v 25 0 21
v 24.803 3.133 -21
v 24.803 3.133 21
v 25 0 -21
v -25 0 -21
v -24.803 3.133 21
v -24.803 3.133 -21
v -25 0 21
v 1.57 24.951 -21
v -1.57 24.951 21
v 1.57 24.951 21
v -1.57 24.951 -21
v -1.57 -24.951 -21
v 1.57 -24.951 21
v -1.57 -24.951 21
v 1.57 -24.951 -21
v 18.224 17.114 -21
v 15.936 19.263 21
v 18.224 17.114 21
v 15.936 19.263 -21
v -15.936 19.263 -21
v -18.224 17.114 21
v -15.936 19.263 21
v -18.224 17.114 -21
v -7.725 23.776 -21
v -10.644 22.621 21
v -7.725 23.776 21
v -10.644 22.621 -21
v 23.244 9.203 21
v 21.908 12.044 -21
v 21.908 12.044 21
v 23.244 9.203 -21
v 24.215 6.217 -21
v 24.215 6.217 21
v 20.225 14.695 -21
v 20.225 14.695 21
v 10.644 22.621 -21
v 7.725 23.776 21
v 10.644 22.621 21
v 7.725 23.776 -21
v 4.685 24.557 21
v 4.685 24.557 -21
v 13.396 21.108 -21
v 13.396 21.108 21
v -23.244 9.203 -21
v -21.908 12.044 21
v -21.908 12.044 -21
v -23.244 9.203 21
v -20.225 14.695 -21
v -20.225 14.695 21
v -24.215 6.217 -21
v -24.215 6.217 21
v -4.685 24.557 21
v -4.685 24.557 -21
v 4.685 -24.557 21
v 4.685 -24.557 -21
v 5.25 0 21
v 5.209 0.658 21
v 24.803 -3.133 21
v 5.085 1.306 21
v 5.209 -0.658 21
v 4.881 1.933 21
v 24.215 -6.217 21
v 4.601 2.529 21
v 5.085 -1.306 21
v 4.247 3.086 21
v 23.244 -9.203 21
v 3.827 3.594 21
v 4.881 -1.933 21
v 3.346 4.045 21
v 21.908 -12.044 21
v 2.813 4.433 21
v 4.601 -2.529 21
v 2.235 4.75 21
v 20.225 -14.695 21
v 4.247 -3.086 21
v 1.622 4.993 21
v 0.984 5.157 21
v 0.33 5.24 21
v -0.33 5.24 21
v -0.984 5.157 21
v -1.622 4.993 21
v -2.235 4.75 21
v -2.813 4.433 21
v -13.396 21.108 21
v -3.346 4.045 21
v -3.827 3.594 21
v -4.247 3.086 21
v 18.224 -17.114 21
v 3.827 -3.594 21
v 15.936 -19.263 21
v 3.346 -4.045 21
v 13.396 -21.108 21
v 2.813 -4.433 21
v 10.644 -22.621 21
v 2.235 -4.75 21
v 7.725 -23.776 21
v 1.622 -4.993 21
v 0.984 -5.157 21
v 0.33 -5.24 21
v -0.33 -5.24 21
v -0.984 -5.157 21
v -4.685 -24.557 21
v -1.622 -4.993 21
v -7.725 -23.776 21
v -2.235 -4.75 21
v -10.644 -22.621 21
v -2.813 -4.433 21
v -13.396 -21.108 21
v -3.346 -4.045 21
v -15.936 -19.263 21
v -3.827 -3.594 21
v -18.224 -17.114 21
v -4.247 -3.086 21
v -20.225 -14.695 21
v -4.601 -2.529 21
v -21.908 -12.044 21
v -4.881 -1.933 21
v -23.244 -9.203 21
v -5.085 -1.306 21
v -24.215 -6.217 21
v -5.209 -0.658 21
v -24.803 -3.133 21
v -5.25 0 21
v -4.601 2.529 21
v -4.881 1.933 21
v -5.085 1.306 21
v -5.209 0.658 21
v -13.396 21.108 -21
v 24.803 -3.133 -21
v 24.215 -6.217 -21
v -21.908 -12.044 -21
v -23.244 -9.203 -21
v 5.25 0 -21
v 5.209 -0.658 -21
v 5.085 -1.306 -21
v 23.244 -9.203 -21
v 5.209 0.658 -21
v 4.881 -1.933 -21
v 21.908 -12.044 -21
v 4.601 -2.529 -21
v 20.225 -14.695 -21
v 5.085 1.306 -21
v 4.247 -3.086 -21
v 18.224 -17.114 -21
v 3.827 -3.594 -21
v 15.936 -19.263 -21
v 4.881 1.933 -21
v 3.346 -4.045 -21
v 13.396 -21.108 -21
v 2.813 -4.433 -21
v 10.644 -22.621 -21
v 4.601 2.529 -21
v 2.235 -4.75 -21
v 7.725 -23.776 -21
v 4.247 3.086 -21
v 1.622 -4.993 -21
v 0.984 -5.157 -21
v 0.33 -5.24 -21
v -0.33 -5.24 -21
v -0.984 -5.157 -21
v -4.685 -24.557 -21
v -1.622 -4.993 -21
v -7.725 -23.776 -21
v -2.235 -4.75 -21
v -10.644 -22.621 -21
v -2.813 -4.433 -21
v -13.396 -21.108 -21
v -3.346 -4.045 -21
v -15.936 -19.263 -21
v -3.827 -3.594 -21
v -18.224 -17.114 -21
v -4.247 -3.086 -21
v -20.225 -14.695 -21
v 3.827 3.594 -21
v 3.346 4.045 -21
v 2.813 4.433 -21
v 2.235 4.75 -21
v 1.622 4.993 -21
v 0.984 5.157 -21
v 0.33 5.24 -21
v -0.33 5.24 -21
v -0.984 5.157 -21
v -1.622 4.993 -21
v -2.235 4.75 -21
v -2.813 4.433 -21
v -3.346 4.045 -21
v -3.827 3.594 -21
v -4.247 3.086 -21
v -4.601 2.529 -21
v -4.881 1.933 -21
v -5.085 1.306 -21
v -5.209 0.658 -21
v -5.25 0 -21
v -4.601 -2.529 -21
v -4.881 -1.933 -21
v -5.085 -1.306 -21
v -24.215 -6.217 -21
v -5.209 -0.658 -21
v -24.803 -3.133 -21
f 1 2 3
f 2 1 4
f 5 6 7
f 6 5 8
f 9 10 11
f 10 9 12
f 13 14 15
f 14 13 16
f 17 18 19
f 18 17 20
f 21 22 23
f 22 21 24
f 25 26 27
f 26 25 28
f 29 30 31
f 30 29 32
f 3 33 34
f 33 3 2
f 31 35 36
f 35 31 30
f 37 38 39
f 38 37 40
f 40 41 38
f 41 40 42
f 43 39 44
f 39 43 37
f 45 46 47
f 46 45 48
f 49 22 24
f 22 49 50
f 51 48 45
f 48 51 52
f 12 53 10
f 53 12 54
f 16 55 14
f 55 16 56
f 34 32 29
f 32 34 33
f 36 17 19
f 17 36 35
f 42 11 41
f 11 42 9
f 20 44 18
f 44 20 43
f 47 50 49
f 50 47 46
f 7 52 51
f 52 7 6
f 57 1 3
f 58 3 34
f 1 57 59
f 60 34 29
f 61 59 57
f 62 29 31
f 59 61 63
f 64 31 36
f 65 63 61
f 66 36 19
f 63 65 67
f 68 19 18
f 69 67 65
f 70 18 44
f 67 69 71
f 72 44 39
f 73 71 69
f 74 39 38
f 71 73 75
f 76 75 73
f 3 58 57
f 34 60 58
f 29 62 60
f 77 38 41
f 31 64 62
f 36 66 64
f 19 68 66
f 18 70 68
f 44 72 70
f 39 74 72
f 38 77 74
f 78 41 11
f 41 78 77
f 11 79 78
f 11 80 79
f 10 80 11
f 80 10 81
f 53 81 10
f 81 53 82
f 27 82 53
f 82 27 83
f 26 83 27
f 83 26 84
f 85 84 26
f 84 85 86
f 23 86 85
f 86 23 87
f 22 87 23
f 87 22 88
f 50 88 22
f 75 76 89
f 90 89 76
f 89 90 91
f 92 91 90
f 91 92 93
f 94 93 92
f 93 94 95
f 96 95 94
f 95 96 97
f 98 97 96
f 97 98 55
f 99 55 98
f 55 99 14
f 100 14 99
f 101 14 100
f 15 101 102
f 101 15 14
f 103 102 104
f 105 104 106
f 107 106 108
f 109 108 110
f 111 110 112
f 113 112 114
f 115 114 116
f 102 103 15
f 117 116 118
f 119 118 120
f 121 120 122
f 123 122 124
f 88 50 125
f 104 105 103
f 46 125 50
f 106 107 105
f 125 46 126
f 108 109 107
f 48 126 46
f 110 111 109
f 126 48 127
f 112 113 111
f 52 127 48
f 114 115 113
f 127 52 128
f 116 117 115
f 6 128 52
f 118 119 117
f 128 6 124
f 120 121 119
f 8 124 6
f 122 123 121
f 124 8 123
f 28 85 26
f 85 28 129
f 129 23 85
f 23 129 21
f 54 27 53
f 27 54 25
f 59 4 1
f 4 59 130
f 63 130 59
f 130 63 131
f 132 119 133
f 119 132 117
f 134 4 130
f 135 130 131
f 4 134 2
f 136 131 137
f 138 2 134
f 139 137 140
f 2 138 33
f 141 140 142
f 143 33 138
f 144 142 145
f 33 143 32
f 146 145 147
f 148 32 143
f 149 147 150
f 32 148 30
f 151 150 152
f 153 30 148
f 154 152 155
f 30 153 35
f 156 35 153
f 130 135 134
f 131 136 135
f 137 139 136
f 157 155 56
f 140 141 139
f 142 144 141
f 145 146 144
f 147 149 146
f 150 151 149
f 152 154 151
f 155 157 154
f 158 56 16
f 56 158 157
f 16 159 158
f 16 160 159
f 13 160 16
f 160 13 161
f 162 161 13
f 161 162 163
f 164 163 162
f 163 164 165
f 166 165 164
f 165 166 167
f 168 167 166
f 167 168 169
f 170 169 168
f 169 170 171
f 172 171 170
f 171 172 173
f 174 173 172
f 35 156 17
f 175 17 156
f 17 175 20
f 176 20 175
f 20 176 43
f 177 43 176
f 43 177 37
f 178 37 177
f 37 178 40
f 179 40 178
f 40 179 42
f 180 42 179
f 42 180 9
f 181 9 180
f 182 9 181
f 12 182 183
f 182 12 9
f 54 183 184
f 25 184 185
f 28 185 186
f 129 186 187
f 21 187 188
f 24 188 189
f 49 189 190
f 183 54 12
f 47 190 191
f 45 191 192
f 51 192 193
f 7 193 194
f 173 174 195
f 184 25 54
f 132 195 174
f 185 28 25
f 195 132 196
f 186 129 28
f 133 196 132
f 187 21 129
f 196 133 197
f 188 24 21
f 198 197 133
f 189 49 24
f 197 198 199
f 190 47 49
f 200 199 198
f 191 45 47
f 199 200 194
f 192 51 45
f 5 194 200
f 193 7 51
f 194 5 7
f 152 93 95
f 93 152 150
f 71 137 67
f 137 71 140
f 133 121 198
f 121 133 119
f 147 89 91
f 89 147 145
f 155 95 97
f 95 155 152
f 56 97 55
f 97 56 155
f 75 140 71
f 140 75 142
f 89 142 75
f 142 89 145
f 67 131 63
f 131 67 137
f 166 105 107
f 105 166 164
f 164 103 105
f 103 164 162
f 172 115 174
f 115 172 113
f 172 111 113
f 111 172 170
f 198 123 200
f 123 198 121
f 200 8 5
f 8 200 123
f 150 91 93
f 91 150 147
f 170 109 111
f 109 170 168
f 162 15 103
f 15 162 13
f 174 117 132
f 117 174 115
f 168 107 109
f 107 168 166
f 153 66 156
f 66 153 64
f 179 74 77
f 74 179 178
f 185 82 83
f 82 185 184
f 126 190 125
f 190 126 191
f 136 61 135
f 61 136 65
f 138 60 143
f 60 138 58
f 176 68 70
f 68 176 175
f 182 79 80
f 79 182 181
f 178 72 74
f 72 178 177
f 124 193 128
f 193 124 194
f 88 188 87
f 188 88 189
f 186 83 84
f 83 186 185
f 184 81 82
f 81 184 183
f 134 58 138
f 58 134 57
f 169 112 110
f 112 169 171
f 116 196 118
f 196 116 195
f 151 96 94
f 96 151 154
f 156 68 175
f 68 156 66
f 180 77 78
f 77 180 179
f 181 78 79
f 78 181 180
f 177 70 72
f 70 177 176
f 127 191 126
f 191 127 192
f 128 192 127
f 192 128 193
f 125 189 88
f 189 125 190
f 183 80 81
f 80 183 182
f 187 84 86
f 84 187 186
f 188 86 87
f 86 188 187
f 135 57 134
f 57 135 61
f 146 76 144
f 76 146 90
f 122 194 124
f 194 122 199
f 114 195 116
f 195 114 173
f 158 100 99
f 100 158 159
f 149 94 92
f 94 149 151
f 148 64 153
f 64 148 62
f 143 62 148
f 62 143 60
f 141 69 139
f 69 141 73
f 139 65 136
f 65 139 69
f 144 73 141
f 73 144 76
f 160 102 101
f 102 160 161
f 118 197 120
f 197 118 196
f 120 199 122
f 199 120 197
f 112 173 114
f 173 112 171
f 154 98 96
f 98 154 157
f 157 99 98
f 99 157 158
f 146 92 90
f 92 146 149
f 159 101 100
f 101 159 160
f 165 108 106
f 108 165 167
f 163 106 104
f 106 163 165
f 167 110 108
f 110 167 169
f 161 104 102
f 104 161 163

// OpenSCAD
$fn = 50;


difference() {
	union() {
		translate(v = [0, 0, -21.0000000000]) {
			cylinder(h = 42, r = 25.0000000000);
		}
	}
	union() {
		translate(v = [0, 0, -100.0000000000]) {
			cylinder(h = 200, r = 5.2500000000);
		}
	}
}
